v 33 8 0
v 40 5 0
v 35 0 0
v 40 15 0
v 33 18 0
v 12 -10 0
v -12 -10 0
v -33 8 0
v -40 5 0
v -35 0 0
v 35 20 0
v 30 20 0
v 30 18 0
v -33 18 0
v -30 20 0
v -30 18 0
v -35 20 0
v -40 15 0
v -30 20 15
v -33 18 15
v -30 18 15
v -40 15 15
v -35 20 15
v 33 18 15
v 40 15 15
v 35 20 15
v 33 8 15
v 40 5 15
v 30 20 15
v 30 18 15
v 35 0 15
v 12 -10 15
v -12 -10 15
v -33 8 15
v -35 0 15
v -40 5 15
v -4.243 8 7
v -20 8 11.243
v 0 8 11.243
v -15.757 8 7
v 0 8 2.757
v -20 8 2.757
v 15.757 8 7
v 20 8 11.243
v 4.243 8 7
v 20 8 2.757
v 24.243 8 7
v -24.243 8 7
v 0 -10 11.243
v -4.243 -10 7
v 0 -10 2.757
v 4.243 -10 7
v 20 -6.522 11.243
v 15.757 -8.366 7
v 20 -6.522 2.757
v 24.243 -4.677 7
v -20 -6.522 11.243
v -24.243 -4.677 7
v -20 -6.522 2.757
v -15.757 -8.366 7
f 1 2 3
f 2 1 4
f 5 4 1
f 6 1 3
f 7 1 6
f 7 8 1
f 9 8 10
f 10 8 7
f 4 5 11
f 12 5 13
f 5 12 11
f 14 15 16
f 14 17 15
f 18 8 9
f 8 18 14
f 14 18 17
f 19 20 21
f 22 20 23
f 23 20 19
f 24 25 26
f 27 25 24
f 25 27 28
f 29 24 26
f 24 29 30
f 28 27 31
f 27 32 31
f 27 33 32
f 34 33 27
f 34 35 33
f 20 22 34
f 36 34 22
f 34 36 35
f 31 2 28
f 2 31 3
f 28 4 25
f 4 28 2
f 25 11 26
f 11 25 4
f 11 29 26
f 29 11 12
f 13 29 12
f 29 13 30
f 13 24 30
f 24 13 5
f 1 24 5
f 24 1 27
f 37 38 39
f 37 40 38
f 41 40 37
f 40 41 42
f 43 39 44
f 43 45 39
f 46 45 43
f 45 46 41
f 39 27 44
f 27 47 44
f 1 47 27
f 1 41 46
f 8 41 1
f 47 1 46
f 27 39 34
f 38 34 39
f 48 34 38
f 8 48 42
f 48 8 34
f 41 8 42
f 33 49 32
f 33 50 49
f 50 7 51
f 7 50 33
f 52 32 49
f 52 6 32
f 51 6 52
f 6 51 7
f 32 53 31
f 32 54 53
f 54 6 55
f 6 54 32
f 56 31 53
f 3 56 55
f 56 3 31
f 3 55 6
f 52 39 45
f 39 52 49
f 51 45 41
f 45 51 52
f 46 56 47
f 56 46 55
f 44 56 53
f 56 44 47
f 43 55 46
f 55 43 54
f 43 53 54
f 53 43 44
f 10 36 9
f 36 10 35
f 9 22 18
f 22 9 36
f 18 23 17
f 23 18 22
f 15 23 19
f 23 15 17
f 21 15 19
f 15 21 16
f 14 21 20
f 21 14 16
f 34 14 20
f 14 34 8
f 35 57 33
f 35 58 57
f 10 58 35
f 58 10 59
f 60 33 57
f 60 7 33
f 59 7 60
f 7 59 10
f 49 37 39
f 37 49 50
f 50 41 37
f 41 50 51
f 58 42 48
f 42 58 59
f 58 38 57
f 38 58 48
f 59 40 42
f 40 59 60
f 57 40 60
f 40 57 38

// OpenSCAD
module single_hole(tx =0) {
    translate([tx, 0, 7]) rotate([0, 45, 0]) 
        cube([6, 20, 6], center=true);
}

module half() {
    difference() {
        linear_extrude(15) polygon([
          [0,-10],
          [12,-10],
          [35,0],
          [40,5],
          [40,15],
          [35,20],
          [30,20],
          [30,18],
          [33,18],
          [33,8],
          [0,8]
         ]);
        single_hole();
        single_hole(20);
    }
}

union() {
    half();
    mirror([1, 0, 0]) half();
}
